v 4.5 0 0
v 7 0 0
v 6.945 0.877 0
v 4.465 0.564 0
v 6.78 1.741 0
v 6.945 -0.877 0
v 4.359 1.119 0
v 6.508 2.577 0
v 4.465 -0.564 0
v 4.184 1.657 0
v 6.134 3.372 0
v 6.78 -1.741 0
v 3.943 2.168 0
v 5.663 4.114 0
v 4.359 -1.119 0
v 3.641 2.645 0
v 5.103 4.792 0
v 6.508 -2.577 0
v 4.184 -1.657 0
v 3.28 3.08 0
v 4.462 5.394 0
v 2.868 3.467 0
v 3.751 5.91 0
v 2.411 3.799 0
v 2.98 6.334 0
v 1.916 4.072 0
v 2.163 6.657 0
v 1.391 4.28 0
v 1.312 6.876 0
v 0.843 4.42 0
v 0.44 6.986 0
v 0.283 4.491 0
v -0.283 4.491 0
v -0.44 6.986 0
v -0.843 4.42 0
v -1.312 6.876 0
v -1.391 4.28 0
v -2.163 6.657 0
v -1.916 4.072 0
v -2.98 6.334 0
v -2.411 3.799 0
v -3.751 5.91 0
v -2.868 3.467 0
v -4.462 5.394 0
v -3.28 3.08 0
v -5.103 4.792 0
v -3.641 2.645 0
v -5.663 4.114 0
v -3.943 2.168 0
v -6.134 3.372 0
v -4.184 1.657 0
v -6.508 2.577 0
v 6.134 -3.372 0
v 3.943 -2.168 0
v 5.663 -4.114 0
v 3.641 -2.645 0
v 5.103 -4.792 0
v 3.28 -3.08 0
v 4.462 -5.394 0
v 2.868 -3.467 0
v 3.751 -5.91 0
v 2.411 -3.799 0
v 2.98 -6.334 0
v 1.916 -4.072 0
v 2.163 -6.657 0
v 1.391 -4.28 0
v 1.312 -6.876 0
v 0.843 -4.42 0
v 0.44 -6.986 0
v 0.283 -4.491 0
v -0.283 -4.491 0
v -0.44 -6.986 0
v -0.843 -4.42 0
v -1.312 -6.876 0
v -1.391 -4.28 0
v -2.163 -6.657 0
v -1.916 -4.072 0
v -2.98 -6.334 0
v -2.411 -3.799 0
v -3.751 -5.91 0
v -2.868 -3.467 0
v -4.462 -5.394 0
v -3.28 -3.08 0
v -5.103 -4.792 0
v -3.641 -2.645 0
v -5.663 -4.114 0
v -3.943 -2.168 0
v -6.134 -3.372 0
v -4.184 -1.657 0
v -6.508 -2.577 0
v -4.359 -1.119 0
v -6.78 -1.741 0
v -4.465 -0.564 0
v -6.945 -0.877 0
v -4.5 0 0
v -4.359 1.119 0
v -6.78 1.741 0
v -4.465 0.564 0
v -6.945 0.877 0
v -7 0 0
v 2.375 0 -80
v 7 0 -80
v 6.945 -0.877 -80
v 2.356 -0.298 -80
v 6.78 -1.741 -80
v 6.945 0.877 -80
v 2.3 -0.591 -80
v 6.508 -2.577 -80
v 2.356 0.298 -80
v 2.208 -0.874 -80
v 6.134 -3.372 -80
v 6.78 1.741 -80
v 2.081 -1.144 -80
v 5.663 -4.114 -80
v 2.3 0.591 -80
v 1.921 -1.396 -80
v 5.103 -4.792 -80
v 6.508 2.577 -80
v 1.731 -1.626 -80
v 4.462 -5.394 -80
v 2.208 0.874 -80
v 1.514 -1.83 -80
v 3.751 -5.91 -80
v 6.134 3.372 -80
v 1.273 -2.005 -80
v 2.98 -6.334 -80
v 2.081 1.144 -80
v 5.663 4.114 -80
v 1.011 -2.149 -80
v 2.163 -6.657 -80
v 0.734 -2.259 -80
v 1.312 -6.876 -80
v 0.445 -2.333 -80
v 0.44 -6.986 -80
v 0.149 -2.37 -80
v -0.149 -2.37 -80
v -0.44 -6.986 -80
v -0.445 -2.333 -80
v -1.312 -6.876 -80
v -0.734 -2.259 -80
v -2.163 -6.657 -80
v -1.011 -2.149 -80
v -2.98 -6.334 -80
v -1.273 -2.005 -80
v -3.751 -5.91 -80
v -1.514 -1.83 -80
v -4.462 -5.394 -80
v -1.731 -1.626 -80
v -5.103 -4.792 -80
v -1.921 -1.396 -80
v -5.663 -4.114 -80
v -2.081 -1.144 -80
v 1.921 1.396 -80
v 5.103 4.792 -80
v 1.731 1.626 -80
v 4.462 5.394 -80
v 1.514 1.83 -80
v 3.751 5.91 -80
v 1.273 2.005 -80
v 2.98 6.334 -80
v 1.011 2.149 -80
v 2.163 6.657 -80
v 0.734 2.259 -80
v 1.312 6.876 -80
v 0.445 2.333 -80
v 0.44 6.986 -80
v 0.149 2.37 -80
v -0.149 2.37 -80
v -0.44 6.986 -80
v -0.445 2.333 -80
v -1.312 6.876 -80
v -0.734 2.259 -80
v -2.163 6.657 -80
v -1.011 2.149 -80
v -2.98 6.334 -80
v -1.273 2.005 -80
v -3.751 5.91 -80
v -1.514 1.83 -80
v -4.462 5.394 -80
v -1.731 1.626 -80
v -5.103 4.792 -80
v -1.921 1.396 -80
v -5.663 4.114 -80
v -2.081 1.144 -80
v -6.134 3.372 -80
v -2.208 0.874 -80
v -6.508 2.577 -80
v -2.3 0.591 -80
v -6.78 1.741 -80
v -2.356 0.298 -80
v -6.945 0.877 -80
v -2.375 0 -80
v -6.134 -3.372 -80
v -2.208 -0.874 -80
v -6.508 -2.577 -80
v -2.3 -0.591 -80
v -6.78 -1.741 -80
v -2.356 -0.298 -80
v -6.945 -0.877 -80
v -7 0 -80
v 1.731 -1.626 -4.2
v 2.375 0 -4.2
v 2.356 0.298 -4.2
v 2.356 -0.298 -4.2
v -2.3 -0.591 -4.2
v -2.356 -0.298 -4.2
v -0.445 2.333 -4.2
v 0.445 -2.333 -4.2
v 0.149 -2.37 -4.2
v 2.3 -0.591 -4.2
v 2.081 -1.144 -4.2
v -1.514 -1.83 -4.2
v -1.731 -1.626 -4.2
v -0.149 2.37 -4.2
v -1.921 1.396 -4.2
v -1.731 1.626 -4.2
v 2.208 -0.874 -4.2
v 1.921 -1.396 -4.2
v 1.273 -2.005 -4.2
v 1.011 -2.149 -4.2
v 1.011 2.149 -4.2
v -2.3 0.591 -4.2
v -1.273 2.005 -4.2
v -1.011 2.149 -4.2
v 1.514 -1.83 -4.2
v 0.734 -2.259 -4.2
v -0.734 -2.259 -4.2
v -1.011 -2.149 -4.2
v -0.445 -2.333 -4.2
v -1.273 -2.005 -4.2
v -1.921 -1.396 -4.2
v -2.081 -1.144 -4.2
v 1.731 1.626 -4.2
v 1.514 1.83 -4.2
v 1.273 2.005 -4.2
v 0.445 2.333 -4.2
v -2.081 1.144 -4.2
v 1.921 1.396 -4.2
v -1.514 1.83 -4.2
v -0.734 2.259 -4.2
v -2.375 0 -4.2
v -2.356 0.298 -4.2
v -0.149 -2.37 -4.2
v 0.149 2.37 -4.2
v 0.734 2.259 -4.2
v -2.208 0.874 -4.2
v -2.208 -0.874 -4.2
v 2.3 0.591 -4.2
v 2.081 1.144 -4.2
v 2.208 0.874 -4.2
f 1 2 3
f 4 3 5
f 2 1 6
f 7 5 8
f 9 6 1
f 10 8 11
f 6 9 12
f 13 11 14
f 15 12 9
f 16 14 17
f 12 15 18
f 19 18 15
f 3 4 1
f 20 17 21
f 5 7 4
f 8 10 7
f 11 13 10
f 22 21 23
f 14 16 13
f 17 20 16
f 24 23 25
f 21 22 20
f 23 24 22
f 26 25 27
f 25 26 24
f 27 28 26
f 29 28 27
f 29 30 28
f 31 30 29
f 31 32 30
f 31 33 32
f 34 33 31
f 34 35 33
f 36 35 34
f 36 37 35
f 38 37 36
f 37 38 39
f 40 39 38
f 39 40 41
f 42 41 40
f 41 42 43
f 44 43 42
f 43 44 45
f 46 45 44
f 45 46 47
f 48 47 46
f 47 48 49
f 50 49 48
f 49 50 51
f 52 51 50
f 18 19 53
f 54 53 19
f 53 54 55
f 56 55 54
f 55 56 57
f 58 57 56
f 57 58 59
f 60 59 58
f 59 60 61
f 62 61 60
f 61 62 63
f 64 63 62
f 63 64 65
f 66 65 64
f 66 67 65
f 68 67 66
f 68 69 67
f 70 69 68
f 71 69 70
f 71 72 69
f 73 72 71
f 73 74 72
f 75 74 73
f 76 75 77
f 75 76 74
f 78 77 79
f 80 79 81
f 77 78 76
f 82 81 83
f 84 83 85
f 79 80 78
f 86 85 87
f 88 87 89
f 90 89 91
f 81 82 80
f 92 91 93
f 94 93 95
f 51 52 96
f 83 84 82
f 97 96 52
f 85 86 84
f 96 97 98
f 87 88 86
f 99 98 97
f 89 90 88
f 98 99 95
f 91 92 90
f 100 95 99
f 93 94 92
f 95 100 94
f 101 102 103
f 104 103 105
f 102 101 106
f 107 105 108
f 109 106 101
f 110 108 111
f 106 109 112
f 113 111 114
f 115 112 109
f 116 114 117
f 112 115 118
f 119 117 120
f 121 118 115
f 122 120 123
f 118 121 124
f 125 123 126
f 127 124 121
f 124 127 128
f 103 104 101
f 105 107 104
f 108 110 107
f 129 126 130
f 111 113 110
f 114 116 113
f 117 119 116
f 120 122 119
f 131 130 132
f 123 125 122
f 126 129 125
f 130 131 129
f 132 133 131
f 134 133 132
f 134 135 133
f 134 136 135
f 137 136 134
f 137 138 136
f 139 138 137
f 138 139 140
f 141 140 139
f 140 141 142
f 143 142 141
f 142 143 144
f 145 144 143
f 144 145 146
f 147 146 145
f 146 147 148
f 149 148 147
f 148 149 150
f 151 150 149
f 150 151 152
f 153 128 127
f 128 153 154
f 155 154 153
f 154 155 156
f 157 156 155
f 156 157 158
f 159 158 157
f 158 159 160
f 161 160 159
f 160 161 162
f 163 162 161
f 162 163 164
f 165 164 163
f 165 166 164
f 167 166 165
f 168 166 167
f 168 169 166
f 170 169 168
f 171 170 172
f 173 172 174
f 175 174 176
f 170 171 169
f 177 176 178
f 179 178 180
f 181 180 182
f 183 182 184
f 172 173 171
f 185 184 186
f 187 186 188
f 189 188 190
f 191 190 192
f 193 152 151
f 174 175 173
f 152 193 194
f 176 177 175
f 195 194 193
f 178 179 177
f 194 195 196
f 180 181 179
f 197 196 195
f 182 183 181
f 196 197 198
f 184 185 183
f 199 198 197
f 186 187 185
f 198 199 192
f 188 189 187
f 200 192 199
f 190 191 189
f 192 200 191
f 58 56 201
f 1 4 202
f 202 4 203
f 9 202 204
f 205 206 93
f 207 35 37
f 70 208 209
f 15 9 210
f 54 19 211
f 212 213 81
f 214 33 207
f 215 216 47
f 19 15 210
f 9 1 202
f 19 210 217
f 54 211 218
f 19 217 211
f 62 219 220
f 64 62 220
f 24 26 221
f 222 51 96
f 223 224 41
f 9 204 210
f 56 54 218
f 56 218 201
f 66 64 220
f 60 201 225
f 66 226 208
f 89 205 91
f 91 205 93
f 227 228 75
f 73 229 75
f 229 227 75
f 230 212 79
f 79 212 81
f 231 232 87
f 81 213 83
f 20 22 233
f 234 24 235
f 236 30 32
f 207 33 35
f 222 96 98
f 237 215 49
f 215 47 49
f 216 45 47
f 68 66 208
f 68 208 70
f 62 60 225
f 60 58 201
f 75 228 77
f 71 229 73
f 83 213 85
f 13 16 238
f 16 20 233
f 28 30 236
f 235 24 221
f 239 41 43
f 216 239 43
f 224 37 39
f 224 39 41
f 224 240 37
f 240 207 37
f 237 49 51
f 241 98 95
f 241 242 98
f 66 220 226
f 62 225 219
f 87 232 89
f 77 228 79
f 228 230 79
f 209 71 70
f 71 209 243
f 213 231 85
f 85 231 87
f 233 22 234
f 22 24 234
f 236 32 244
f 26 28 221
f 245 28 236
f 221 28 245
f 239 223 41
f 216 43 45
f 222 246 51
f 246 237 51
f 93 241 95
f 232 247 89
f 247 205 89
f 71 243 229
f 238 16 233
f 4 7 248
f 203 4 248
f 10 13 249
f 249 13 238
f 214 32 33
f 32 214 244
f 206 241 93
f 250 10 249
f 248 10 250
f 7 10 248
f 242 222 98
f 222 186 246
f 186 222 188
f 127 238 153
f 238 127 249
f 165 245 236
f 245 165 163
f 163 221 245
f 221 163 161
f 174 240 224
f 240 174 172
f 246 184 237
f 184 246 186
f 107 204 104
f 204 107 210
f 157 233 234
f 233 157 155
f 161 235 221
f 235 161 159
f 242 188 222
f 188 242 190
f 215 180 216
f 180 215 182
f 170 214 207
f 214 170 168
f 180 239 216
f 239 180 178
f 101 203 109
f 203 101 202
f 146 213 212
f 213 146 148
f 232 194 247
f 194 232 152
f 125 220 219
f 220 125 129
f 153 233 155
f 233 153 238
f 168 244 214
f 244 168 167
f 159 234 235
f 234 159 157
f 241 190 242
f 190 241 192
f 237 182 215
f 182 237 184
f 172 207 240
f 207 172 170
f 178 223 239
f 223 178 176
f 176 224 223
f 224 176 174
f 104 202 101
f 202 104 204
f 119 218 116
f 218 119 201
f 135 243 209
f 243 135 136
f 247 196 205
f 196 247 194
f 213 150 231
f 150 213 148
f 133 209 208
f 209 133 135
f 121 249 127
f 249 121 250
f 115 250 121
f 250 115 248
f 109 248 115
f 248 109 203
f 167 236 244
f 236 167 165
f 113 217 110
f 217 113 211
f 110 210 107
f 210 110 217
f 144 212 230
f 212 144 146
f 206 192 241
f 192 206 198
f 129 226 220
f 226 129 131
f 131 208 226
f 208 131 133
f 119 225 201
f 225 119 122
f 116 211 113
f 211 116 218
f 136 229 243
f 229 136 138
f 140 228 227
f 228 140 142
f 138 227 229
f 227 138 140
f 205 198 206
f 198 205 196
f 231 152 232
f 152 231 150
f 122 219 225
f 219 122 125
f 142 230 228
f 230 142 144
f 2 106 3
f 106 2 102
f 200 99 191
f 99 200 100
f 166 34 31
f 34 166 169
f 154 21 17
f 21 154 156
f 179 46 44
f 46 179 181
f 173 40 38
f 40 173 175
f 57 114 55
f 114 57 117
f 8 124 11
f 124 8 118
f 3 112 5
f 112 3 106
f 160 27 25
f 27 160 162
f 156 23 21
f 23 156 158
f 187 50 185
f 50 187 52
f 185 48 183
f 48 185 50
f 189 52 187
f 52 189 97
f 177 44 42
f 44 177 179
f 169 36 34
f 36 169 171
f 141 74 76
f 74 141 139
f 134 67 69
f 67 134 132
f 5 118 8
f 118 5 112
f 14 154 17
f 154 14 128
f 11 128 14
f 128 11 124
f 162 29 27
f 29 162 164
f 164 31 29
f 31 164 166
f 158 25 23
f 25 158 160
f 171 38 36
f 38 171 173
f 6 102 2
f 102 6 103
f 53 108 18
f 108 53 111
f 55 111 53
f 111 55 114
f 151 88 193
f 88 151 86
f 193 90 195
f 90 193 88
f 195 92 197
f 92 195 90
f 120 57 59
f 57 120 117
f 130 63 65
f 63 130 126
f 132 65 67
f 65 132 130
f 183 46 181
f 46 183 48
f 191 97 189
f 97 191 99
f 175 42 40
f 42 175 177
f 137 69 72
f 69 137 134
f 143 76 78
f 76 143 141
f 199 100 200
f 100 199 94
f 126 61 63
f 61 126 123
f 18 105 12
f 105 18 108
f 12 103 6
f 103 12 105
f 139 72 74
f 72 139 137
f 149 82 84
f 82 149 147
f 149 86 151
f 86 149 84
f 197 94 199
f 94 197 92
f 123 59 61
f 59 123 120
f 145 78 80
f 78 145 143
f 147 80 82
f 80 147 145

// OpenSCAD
$fn = 50;


difference() {
	union() {
		translate(v = [0, 0, -80.0000000000]) {
			cylinder(h = 80, r = 7.0000000000);
		}
		cylinder(h = 0, r = 17.0000000000);
	}
	union() {
		translate(v = [0, 0, 0]) {
			rotate(a = [0, 0, 0]) {
				difference() {
					union() {
						#translate(v = [0, 0, -80.0000000000]) {
							cylinder(h = 80, r = 2.2500000000);
						}
						#translate(v = [0, 0, -4.2000000000]) {
							cylinder(h = 4.2000000000, r1 = 2.3750000000, r2 = 4.5000000000);
						}
						#translate(v = [0, 0, -80.0000000000]) {
							cylinder(h = 80, r = 2.3750000000);
						}
						#translate(v = [0, 0, -80.0000000000]) {
							cylinder(h = 80, r = 2.2500000000);
						}
					}
					union();
				}
			}
		}
	}
}
